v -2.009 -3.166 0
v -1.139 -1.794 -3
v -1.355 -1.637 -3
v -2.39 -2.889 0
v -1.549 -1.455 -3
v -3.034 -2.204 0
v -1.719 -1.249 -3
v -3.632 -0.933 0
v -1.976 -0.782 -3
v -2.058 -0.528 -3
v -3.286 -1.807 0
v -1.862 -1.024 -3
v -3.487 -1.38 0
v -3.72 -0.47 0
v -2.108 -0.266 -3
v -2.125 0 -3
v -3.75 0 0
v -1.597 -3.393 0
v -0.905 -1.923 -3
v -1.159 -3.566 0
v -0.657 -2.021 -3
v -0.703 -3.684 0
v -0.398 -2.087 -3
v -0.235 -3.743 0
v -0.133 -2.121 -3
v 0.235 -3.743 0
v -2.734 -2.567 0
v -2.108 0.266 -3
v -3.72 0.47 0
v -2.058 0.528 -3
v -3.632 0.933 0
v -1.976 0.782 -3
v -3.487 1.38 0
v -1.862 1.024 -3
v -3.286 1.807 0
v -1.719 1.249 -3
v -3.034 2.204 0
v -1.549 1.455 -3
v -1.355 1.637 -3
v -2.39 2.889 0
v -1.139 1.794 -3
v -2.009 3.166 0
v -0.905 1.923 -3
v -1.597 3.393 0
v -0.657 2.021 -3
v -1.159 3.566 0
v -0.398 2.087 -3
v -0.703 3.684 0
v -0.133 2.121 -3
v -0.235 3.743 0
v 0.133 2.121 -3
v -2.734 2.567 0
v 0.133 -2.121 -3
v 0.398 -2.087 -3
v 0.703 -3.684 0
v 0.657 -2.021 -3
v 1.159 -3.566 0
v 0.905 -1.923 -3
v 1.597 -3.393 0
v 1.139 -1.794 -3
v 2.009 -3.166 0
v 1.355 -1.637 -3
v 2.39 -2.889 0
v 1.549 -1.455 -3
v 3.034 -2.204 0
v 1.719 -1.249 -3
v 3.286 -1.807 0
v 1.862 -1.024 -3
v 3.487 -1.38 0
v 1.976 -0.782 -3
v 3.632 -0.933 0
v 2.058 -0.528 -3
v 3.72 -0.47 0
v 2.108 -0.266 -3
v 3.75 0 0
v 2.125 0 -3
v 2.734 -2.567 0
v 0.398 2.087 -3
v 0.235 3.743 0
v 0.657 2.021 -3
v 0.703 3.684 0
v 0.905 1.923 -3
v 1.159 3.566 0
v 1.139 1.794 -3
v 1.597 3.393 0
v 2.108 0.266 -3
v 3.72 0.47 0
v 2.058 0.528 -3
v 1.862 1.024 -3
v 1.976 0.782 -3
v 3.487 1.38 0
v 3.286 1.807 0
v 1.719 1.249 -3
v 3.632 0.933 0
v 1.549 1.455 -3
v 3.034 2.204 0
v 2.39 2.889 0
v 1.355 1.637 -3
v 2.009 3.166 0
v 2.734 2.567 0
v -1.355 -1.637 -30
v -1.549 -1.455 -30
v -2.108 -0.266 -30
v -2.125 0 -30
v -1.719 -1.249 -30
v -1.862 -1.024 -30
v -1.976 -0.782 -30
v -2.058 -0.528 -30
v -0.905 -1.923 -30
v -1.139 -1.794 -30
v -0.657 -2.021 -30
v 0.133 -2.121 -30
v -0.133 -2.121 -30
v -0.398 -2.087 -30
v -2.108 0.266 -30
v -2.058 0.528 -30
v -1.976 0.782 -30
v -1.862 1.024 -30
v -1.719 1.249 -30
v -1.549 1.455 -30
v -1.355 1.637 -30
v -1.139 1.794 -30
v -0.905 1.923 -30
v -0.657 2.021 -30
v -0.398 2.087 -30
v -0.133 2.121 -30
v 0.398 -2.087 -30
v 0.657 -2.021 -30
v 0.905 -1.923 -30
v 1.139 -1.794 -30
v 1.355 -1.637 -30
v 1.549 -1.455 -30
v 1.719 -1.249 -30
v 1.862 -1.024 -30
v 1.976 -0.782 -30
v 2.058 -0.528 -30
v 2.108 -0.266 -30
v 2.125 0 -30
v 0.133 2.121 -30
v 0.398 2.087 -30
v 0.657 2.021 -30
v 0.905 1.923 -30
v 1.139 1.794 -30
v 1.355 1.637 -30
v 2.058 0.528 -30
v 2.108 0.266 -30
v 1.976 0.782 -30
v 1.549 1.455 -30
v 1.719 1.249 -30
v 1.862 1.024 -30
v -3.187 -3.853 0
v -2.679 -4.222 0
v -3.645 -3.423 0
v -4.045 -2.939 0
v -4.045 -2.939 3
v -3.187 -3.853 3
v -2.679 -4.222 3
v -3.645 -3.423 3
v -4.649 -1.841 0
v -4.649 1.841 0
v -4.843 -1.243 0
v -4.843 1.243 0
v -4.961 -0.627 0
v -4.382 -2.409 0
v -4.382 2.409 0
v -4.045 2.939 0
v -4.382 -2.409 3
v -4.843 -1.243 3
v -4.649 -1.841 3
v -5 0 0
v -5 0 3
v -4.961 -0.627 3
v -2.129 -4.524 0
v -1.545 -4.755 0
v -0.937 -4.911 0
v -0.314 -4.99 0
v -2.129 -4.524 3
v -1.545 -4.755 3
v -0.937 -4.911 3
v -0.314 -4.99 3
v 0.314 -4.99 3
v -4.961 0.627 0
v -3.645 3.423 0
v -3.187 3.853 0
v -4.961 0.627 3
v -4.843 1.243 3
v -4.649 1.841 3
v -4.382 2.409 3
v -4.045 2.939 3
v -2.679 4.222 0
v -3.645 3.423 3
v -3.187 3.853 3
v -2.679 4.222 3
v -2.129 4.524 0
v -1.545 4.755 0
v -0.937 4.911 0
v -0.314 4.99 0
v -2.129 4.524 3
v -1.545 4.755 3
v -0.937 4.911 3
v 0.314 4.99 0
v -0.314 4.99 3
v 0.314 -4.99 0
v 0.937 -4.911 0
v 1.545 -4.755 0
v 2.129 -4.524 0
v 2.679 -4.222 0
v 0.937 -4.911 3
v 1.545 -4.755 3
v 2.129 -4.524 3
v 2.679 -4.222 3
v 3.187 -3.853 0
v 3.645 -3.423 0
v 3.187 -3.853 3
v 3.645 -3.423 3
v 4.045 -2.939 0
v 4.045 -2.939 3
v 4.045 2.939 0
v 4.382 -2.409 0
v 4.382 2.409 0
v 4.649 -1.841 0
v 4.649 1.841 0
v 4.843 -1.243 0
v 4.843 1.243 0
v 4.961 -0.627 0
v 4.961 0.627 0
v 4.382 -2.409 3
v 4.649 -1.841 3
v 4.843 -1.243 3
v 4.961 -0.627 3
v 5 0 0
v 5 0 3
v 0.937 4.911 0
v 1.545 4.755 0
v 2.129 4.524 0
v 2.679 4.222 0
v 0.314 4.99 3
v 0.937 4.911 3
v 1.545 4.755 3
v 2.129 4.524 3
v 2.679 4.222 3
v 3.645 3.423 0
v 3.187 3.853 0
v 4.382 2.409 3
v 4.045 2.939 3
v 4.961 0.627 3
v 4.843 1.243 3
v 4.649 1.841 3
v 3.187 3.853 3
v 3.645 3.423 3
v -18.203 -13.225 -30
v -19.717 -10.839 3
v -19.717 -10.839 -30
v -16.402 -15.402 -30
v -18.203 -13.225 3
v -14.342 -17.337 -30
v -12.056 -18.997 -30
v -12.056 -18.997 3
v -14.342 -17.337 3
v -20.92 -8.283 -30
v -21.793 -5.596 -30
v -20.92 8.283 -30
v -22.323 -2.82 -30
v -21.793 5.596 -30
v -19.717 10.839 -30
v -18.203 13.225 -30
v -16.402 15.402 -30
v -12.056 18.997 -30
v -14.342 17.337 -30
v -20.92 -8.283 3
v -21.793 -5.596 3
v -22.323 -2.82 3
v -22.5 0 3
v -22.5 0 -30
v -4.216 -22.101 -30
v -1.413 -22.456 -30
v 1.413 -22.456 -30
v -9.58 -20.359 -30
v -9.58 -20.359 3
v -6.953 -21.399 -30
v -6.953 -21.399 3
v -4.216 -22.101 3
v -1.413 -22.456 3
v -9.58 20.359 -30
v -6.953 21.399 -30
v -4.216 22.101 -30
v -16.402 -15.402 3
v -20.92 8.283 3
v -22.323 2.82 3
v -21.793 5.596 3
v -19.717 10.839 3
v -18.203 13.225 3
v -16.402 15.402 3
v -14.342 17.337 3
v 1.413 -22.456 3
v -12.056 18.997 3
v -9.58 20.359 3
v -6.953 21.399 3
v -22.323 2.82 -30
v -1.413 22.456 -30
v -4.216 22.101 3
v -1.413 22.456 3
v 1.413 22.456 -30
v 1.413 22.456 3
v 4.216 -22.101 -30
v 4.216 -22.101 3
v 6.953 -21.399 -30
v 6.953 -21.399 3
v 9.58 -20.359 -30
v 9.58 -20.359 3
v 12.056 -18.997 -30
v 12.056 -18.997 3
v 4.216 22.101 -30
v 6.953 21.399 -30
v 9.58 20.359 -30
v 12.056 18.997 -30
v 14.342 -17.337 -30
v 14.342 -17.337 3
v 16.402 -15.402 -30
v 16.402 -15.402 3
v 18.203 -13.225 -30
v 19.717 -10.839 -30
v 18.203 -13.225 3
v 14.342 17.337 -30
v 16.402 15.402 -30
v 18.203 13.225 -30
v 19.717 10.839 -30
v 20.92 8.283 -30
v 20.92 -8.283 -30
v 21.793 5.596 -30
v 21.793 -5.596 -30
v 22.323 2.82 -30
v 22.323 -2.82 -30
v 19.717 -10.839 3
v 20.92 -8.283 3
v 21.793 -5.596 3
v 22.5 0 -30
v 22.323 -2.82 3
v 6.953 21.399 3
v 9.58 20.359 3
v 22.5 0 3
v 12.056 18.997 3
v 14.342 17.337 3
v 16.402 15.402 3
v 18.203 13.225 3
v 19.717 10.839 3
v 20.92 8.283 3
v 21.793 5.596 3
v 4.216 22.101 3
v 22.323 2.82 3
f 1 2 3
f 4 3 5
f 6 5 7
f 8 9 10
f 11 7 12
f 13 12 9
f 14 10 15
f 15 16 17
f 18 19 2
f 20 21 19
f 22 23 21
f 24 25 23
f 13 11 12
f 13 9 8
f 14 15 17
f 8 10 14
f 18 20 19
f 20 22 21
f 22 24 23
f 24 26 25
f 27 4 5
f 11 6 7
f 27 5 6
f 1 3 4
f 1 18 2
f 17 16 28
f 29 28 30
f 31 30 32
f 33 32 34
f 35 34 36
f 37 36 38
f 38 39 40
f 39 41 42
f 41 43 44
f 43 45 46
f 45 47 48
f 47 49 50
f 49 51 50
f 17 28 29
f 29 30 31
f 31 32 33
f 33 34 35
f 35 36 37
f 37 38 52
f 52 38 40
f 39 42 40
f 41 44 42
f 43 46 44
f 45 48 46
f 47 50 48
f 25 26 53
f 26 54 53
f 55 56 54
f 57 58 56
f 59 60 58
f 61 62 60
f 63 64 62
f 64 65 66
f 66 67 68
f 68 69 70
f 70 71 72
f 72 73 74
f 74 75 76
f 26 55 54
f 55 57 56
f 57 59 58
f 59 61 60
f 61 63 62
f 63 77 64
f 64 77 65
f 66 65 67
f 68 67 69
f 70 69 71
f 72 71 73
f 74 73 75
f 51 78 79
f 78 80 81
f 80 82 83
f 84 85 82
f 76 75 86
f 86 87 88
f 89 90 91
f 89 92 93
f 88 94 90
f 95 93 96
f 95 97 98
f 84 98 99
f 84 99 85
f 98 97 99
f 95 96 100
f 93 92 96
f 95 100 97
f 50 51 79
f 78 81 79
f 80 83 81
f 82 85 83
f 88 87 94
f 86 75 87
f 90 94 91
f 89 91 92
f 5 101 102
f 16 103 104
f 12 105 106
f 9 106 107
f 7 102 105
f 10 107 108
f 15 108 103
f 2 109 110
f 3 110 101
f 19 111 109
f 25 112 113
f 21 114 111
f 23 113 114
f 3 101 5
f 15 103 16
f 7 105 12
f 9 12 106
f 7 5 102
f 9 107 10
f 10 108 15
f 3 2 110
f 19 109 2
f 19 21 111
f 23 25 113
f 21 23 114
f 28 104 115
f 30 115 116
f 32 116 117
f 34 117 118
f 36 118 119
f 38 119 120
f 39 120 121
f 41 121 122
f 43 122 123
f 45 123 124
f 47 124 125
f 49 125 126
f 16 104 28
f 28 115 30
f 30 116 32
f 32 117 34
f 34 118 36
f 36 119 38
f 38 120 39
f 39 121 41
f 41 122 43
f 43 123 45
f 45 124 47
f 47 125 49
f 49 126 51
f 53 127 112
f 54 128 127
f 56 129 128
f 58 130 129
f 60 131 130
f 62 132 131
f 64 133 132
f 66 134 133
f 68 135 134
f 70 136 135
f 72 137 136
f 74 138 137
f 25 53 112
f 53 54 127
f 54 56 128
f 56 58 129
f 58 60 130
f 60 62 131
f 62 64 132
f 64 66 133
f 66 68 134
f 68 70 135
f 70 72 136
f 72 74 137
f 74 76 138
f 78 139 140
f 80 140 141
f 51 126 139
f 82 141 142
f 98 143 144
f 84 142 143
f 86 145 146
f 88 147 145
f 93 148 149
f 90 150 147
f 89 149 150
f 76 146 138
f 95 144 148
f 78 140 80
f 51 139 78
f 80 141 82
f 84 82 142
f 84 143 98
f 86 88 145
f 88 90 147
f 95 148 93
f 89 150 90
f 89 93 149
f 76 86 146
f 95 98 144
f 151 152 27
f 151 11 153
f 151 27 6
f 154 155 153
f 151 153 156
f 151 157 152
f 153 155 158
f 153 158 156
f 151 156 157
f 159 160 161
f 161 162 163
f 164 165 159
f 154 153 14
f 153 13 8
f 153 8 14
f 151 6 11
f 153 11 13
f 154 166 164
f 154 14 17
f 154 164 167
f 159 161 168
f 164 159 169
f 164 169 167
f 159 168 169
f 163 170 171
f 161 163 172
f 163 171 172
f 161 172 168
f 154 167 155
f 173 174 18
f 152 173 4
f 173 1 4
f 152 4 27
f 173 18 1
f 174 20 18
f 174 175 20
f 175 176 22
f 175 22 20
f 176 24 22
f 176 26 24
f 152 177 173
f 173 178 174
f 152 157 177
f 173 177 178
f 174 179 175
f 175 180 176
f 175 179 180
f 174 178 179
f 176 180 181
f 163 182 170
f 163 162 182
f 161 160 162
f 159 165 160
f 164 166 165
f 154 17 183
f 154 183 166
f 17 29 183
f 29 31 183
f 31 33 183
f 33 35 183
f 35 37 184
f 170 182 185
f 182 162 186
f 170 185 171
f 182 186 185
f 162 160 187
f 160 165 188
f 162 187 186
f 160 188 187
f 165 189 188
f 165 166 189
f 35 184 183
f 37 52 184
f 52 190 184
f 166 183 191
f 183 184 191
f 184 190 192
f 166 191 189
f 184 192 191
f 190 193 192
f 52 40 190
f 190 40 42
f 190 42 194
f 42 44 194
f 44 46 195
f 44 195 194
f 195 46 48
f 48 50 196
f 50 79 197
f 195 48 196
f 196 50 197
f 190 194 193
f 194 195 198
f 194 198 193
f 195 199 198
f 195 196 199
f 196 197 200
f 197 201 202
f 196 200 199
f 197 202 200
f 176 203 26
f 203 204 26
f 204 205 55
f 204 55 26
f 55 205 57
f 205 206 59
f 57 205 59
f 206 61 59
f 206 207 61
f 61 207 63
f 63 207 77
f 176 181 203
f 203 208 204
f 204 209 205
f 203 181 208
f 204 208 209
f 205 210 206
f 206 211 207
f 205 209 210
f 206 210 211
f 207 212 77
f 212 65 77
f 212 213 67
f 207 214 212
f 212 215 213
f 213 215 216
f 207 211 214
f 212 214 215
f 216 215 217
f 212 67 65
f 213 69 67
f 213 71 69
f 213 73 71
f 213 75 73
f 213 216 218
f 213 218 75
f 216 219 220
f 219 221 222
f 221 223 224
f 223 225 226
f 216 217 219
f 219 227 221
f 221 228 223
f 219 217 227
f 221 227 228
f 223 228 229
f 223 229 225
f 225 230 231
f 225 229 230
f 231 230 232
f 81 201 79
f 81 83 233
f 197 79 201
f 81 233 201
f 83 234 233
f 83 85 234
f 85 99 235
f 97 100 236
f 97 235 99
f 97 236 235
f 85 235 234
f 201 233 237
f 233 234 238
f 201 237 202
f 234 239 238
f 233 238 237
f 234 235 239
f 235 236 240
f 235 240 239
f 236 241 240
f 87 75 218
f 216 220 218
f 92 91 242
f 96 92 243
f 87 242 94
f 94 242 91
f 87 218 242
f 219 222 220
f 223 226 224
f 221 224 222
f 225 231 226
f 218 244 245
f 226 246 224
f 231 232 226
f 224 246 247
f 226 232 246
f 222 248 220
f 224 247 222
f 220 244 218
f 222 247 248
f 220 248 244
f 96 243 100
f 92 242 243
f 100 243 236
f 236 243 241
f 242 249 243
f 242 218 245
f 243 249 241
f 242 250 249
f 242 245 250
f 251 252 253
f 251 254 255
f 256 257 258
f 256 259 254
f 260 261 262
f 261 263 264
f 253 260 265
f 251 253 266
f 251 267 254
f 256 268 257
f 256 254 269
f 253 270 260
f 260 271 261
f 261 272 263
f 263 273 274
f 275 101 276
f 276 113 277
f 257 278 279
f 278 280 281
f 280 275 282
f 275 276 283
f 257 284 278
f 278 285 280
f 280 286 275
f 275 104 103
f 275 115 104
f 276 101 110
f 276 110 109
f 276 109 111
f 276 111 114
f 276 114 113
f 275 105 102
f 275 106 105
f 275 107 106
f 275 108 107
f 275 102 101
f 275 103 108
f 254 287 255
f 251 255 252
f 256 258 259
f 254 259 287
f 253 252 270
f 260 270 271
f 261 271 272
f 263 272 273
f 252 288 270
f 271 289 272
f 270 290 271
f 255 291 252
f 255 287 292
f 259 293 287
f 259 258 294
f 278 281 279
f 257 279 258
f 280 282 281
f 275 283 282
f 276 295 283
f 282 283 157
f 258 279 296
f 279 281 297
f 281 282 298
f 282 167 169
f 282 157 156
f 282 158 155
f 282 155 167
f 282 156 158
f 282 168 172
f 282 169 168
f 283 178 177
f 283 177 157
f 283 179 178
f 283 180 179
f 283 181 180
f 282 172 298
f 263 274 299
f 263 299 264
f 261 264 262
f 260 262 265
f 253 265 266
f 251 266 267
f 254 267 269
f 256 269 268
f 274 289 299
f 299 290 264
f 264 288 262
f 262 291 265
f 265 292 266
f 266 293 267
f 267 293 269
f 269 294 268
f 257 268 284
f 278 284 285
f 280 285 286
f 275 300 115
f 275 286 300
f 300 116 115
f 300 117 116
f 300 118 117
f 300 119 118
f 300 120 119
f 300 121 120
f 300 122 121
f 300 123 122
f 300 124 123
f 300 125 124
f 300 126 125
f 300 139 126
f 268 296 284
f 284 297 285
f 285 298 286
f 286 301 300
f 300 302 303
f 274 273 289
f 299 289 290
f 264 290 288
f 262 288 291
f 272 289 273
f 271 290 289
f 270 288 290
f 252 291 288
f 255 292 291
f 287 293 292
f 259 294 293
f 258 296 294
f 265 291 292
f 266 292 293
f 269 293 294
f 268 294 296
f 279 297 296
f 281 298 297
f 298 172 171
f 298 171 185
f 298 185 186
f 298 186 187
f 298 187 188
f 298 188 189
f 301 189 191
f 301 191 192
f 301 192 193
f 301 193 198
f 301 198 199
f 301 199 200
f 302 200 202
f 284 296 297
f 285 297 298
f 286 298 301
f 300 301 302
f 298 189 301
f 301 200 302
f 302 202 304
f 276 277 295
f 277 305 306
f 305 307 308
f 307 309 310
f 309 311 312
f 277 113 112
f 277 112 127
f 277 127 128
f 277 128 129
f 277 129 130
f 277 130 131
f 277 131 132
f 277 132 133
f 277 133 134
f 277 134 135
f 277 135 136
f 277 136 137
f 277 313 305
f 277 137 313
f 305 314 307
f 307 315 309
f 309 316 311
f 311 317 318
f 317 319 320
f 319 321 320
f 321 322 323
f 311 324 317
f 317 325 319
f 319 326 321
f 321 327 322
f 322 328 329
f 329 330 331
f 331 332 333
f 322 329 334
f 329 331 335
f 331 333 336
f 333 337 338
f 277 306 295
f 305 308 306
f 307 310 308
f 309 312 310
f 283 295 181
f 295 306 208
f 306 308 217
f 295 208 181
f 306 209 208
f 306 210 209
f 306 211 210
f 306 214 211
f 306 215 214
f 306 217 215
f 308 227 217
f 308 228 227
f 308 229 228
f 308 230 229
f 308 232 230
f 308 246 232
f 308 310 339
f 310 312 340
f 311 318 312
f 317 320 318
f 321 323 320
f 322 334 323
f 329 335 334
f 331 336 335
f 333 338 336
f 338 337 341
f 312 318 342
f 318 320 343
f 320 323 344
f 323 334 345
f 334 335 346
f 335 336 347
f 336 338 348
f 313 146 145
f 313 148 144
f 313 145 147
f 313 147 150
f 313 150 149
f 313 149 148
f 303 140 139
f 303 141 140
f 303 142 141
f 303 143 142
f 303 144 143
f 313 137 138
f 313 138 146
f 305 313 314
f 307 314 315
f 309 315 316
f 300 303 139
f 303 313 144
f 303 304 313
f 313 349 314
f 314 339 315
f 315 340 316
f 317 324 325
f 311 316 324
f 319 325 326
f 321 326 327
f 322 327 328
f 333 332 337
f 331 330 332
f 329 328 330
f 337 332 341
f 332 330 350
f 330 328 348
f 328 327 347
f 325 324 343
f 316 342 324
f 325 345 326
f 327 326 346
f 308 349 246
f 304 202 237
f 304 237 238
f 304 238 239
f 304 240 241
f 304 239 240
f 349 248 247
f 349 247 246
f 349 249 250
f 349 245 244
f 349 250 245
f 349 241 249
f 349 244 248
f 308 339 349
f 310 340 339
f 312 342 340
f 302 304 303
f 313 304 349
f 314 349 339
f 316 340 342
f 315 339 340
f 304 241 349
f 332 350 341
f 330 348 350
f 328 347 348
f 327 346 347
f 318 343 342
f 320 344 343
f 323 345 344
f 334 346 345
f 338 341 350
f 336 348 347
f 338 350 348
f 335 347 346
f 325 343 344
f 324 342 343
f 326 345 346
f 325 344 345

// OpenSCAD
$fn = 50;

difference() {
	union() {
		translate(v = [0, 0, -30.0]) {
			cylinder(h = 33, r = 22.5);
		}
	}
	union() {
		translate(v = [0, 0, 0]) {
			rotate(a = [0, 0, 0]) {
				difference() {
					union() {
						translate(v = [0, 0, -33.0]) {
							cylinder(h = 33, r = 2.0);
						}
						translate(v = [0, 0, -3]) {
							cylinder(h = 3, r1 = 2.125, r2 = 3.75);
						}
						translate(v = [0, 0, -33.0]) {
							cylinder(h = 33, r = 2.125);
						}
						translate(v = [0, 0, -33.0]) {
							cylinder(h = 33, r = 2.0);
						}
					}
					union();
				}
			}
		}
		#cylinder(h = 3, r = 5.0);
	}
}
